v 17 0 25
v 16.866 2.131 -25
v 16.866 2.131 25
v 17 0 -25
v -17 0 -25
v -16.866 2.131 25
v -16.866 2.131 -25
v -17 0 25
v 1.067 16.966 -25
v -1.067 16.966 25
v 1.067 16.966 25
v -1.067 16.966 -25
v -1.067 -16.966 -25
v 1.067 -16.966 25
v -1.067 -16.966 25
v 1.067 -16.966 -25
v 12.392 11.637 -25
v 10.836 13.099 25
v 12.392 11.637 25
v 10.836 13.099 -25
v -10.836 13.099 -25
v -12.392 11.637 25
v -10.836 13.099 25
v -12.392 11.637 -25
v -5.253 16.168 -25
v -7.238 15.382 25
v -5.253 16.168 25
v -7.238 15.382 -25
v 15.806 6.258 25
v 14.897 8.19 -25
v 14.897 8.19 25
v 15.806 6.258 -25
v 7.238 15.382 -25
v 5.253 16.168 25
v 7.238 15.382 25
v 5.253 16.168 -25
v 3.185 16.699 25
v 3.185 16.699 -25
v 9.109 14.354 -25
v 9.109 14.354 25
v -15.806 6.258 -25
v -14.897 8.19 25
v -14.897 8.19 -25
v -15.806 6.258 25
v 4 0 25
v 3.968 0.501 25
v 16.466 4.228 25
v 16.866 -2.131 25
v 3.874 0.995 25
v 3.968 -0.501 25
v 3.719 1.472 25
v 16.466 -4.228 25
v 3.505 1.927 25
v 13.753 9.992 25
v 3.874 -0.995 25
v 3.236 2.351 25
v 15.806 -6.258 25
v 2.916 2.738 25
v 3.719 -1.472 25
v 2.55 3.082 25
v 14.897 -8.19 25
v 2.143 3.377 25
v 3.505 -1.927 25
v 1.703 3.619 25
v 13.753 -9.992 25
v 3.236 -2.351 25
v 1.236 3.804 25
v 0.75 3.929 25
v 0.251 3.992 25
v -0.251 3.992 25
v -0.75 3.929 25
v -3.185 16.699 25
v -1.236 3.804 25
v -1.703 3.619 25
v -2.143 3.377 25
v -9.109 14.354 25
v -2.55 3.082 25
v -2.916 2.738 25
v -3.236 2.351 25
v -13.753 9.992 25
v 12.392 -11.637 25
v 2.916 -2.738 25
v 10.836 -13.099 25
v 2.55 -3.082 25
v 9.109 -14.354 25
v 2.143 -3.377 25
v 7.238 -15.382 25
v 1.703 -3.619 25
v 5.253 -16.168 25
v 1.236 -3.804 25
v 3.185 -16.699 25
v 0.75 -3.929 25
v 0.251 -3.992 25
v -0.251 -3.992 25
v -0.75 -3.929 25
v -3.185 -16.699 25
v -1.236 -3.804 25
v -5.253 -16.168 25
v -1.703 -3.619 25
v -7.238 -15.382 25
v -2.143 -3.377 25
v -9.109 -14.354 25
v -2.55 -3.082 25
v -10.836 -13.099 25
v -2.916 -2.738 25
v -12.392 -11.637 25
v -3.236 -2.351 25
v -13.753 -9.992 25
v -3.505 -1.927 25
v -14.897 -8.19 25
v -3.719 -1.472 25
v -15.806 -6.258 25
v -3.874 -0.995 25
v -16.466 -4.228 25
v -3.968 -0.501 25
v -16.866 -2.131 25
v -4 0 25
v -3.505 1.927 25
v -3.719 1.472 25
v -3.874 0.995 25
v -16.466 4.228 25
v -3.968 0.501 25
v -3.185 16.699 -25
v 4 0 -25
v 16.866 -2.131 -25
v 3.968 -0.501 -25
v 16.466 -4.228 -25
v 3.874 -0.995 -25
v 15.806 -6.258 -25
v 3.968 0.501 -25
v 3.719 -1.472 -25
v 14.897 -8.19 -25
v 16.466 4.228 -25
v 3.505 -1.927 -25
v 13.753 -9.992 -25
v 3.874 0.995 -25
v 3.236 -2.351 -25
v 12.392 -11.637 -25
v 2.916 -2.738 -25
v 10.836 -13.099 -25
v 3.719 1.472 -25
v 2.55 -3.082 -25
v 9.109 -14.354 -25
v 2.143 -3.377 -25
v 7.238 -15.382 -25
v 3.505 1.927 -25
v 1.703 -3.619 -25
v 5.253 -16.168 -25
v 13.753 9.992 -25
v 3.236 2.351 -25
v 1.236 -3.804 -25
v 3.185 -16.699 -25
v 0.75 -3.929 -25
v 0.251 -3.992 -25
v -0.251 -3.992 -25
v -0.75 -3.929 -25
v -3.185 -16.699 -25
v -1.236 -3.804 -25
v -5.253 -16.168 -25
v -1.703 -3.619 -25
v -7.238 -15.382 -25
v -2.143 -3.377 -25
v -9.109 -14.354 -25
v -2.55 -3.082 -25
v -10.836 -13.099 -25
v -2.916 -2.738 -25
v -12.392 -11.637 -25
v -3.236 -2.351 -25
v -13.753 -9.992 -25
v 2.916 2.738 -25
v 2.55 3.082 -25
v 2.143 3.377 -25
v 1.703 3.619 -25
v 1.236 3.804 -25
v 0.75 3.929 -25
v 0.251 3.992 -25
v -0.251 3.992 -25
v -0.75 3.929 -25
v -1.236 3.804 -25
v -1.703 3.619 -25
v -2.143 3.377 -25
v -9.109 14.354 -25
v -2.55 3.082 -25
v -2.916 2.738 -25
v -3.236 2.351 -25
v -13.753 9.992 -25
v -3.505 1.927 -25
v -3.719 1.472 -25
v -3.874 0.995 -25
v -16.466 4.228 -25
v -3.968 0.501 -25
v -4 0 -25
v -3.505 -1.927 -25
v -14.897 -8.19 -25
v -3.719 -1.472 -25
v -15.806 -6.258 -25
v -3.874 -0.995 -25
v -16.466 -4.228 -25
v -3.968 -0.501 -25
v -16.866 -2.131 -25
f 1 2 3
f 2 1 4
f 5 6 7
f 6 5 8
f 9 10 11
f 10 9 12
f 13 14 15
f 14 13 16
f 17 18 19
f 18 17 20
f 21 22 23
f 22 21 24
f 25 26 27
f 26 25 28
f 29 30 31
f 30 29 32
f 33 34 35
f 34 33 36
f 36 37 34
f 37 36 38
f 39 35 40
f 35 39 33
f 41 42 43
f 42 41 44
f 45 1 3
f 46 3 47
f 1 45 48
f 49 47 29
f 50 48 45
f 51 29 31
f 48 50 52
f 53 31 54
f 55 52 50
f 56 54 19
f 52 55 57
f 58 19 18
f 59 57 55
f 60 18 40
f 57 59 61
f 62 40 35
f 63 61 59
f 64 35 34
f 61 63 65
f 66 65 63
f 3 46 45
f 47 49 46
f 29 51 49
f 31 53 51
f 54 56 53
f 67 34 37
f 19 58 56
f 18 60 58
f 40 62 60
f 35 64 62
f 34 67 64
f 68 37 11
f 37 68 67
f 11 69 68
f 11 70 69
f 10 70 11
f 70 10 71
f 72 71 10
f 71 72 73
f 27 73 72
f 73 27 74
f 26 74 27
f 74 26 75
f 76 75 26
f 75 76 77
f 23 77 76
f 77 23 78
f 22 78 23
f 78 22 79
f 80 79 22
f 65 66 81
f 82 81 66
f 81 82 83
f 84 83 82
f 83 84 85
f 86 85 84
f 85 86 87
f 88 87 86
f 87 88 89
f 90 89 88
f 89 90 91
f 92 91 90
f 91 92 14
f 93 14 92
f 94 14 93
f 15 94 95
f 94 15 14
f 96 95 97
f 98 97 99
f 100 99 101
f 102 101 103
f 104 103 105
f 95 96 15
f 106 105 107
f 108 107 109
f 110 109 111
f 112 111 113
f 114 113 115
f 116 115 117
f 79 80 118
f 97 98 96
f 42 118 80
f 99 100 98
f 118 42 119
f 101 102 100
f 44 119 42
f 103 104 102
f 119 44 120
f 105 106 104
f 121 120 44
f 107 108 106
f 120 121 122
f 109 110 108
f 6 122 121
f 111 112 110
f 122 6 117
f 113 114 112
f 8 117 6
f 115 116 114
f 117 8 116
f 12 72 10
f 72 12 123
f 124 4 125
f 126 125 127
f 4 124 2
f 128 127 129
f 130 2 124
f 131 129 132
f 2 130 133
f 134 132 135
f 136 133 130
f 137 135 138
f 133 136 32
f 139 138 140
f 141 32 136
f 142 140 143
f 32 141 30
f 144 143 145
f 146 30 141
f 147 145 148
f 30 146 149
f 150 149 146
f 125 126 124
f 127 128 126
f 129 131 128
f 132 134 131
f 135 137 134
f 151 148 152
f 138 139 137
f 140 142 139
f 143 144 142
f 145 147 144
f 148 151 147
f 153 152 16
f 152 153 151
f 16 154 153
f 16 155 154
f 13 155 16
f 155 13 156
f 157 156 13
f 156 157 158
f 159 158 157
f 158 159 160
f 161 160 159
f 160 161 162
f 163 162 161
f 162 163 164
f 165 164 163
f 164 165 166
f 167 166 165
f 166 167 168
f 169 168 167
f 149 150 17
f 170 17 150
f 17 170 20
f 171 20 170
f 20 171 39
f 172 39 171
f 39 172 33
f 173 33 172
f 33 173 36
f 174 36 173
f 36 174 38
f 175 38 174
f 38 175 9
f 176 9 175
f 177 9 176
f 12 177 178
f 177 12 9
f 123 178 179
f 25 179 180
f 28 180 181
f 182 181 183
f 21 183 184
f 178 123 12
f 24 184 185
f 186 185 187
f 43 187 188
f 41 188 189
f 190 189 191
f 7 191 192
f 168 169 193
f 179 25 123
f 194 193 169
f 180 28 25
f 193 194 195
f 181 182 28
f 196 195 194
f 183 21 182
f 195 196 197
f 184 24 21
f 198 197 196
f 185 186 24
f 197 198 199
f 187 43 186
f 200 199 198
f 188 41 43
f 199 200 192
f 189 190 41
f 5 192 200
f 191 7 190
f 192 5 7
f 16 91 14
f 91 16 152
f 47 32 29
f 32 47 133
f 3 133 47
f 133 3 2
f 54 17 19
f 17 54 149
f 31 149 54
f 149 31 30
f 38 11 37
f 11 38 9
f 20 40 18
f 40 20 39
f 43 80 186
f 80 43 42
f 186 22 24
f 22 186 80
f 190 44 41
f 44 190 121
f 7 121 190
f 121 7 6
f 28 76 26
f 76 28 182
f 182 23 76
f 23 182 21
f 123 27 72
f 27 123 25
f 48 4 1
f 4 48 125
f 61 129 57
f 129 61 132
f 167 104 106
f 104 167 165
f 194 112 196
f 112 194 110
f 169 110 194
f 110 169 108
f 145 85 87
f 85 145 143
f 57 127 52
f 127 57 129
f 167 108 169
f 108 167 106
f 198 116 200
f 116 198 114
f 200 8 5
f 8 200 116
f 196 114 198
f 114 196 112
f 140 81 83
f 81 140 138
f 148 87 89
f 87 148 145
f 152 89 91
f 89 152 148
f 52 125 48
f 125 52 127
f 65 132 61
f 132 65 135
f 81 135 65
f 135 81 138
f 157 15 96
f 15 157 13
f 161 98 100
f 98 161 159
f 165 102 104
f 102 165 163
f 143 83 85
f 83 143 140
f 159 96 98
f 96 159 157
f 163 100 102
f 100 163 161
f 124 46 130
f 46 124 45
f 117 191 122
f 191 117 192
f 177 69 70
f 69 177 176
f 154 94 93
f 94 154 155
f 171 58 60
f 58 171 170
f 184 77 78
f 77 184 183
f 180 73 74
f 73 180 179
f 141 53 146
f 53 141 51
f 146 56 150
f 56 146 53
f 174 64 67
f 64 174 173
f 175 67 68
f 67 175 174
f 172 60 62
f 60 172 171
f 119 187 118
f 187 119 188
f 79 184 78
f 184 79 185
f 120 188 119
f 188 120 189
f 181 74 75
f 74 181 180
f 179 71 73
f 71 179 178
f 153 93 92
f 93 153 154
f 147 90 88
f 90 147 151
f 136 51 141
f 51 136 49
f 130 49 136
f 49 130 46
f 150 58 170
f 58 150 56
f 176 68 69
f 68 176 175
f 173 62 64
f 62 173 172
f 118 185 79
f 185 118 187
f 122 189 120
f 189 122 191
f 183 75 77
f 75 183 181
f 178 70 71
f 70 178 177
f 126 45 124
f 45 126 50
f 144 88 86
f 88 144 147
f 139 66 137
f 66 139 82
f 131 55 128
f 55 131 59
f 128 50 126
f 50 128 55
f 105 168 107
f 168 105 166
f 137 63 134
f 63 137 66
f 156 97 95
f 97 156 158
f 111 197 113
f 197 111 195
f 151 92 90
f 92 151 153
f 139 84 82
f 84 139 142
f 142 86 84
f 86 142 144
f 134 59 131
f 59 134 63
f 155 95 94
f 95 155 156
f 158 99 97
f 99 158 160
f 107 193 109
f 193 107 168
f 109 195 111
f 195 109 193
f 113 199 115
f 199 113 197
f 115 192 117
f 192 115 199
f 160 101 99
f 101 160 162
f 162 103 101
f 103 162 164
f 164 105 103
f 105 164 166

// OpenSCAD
$fn = 50;


difference() {
	union() {
		translate(v = [0, 0, -25.0000000000]) {
			cylinder(h = 50, r = 17.0000000000);
		}
	}
	union() {
		translate(v = [0, 0, -100.0000000000]) {
			cylinder(h = 200, r = 4);
		}
	}
}
